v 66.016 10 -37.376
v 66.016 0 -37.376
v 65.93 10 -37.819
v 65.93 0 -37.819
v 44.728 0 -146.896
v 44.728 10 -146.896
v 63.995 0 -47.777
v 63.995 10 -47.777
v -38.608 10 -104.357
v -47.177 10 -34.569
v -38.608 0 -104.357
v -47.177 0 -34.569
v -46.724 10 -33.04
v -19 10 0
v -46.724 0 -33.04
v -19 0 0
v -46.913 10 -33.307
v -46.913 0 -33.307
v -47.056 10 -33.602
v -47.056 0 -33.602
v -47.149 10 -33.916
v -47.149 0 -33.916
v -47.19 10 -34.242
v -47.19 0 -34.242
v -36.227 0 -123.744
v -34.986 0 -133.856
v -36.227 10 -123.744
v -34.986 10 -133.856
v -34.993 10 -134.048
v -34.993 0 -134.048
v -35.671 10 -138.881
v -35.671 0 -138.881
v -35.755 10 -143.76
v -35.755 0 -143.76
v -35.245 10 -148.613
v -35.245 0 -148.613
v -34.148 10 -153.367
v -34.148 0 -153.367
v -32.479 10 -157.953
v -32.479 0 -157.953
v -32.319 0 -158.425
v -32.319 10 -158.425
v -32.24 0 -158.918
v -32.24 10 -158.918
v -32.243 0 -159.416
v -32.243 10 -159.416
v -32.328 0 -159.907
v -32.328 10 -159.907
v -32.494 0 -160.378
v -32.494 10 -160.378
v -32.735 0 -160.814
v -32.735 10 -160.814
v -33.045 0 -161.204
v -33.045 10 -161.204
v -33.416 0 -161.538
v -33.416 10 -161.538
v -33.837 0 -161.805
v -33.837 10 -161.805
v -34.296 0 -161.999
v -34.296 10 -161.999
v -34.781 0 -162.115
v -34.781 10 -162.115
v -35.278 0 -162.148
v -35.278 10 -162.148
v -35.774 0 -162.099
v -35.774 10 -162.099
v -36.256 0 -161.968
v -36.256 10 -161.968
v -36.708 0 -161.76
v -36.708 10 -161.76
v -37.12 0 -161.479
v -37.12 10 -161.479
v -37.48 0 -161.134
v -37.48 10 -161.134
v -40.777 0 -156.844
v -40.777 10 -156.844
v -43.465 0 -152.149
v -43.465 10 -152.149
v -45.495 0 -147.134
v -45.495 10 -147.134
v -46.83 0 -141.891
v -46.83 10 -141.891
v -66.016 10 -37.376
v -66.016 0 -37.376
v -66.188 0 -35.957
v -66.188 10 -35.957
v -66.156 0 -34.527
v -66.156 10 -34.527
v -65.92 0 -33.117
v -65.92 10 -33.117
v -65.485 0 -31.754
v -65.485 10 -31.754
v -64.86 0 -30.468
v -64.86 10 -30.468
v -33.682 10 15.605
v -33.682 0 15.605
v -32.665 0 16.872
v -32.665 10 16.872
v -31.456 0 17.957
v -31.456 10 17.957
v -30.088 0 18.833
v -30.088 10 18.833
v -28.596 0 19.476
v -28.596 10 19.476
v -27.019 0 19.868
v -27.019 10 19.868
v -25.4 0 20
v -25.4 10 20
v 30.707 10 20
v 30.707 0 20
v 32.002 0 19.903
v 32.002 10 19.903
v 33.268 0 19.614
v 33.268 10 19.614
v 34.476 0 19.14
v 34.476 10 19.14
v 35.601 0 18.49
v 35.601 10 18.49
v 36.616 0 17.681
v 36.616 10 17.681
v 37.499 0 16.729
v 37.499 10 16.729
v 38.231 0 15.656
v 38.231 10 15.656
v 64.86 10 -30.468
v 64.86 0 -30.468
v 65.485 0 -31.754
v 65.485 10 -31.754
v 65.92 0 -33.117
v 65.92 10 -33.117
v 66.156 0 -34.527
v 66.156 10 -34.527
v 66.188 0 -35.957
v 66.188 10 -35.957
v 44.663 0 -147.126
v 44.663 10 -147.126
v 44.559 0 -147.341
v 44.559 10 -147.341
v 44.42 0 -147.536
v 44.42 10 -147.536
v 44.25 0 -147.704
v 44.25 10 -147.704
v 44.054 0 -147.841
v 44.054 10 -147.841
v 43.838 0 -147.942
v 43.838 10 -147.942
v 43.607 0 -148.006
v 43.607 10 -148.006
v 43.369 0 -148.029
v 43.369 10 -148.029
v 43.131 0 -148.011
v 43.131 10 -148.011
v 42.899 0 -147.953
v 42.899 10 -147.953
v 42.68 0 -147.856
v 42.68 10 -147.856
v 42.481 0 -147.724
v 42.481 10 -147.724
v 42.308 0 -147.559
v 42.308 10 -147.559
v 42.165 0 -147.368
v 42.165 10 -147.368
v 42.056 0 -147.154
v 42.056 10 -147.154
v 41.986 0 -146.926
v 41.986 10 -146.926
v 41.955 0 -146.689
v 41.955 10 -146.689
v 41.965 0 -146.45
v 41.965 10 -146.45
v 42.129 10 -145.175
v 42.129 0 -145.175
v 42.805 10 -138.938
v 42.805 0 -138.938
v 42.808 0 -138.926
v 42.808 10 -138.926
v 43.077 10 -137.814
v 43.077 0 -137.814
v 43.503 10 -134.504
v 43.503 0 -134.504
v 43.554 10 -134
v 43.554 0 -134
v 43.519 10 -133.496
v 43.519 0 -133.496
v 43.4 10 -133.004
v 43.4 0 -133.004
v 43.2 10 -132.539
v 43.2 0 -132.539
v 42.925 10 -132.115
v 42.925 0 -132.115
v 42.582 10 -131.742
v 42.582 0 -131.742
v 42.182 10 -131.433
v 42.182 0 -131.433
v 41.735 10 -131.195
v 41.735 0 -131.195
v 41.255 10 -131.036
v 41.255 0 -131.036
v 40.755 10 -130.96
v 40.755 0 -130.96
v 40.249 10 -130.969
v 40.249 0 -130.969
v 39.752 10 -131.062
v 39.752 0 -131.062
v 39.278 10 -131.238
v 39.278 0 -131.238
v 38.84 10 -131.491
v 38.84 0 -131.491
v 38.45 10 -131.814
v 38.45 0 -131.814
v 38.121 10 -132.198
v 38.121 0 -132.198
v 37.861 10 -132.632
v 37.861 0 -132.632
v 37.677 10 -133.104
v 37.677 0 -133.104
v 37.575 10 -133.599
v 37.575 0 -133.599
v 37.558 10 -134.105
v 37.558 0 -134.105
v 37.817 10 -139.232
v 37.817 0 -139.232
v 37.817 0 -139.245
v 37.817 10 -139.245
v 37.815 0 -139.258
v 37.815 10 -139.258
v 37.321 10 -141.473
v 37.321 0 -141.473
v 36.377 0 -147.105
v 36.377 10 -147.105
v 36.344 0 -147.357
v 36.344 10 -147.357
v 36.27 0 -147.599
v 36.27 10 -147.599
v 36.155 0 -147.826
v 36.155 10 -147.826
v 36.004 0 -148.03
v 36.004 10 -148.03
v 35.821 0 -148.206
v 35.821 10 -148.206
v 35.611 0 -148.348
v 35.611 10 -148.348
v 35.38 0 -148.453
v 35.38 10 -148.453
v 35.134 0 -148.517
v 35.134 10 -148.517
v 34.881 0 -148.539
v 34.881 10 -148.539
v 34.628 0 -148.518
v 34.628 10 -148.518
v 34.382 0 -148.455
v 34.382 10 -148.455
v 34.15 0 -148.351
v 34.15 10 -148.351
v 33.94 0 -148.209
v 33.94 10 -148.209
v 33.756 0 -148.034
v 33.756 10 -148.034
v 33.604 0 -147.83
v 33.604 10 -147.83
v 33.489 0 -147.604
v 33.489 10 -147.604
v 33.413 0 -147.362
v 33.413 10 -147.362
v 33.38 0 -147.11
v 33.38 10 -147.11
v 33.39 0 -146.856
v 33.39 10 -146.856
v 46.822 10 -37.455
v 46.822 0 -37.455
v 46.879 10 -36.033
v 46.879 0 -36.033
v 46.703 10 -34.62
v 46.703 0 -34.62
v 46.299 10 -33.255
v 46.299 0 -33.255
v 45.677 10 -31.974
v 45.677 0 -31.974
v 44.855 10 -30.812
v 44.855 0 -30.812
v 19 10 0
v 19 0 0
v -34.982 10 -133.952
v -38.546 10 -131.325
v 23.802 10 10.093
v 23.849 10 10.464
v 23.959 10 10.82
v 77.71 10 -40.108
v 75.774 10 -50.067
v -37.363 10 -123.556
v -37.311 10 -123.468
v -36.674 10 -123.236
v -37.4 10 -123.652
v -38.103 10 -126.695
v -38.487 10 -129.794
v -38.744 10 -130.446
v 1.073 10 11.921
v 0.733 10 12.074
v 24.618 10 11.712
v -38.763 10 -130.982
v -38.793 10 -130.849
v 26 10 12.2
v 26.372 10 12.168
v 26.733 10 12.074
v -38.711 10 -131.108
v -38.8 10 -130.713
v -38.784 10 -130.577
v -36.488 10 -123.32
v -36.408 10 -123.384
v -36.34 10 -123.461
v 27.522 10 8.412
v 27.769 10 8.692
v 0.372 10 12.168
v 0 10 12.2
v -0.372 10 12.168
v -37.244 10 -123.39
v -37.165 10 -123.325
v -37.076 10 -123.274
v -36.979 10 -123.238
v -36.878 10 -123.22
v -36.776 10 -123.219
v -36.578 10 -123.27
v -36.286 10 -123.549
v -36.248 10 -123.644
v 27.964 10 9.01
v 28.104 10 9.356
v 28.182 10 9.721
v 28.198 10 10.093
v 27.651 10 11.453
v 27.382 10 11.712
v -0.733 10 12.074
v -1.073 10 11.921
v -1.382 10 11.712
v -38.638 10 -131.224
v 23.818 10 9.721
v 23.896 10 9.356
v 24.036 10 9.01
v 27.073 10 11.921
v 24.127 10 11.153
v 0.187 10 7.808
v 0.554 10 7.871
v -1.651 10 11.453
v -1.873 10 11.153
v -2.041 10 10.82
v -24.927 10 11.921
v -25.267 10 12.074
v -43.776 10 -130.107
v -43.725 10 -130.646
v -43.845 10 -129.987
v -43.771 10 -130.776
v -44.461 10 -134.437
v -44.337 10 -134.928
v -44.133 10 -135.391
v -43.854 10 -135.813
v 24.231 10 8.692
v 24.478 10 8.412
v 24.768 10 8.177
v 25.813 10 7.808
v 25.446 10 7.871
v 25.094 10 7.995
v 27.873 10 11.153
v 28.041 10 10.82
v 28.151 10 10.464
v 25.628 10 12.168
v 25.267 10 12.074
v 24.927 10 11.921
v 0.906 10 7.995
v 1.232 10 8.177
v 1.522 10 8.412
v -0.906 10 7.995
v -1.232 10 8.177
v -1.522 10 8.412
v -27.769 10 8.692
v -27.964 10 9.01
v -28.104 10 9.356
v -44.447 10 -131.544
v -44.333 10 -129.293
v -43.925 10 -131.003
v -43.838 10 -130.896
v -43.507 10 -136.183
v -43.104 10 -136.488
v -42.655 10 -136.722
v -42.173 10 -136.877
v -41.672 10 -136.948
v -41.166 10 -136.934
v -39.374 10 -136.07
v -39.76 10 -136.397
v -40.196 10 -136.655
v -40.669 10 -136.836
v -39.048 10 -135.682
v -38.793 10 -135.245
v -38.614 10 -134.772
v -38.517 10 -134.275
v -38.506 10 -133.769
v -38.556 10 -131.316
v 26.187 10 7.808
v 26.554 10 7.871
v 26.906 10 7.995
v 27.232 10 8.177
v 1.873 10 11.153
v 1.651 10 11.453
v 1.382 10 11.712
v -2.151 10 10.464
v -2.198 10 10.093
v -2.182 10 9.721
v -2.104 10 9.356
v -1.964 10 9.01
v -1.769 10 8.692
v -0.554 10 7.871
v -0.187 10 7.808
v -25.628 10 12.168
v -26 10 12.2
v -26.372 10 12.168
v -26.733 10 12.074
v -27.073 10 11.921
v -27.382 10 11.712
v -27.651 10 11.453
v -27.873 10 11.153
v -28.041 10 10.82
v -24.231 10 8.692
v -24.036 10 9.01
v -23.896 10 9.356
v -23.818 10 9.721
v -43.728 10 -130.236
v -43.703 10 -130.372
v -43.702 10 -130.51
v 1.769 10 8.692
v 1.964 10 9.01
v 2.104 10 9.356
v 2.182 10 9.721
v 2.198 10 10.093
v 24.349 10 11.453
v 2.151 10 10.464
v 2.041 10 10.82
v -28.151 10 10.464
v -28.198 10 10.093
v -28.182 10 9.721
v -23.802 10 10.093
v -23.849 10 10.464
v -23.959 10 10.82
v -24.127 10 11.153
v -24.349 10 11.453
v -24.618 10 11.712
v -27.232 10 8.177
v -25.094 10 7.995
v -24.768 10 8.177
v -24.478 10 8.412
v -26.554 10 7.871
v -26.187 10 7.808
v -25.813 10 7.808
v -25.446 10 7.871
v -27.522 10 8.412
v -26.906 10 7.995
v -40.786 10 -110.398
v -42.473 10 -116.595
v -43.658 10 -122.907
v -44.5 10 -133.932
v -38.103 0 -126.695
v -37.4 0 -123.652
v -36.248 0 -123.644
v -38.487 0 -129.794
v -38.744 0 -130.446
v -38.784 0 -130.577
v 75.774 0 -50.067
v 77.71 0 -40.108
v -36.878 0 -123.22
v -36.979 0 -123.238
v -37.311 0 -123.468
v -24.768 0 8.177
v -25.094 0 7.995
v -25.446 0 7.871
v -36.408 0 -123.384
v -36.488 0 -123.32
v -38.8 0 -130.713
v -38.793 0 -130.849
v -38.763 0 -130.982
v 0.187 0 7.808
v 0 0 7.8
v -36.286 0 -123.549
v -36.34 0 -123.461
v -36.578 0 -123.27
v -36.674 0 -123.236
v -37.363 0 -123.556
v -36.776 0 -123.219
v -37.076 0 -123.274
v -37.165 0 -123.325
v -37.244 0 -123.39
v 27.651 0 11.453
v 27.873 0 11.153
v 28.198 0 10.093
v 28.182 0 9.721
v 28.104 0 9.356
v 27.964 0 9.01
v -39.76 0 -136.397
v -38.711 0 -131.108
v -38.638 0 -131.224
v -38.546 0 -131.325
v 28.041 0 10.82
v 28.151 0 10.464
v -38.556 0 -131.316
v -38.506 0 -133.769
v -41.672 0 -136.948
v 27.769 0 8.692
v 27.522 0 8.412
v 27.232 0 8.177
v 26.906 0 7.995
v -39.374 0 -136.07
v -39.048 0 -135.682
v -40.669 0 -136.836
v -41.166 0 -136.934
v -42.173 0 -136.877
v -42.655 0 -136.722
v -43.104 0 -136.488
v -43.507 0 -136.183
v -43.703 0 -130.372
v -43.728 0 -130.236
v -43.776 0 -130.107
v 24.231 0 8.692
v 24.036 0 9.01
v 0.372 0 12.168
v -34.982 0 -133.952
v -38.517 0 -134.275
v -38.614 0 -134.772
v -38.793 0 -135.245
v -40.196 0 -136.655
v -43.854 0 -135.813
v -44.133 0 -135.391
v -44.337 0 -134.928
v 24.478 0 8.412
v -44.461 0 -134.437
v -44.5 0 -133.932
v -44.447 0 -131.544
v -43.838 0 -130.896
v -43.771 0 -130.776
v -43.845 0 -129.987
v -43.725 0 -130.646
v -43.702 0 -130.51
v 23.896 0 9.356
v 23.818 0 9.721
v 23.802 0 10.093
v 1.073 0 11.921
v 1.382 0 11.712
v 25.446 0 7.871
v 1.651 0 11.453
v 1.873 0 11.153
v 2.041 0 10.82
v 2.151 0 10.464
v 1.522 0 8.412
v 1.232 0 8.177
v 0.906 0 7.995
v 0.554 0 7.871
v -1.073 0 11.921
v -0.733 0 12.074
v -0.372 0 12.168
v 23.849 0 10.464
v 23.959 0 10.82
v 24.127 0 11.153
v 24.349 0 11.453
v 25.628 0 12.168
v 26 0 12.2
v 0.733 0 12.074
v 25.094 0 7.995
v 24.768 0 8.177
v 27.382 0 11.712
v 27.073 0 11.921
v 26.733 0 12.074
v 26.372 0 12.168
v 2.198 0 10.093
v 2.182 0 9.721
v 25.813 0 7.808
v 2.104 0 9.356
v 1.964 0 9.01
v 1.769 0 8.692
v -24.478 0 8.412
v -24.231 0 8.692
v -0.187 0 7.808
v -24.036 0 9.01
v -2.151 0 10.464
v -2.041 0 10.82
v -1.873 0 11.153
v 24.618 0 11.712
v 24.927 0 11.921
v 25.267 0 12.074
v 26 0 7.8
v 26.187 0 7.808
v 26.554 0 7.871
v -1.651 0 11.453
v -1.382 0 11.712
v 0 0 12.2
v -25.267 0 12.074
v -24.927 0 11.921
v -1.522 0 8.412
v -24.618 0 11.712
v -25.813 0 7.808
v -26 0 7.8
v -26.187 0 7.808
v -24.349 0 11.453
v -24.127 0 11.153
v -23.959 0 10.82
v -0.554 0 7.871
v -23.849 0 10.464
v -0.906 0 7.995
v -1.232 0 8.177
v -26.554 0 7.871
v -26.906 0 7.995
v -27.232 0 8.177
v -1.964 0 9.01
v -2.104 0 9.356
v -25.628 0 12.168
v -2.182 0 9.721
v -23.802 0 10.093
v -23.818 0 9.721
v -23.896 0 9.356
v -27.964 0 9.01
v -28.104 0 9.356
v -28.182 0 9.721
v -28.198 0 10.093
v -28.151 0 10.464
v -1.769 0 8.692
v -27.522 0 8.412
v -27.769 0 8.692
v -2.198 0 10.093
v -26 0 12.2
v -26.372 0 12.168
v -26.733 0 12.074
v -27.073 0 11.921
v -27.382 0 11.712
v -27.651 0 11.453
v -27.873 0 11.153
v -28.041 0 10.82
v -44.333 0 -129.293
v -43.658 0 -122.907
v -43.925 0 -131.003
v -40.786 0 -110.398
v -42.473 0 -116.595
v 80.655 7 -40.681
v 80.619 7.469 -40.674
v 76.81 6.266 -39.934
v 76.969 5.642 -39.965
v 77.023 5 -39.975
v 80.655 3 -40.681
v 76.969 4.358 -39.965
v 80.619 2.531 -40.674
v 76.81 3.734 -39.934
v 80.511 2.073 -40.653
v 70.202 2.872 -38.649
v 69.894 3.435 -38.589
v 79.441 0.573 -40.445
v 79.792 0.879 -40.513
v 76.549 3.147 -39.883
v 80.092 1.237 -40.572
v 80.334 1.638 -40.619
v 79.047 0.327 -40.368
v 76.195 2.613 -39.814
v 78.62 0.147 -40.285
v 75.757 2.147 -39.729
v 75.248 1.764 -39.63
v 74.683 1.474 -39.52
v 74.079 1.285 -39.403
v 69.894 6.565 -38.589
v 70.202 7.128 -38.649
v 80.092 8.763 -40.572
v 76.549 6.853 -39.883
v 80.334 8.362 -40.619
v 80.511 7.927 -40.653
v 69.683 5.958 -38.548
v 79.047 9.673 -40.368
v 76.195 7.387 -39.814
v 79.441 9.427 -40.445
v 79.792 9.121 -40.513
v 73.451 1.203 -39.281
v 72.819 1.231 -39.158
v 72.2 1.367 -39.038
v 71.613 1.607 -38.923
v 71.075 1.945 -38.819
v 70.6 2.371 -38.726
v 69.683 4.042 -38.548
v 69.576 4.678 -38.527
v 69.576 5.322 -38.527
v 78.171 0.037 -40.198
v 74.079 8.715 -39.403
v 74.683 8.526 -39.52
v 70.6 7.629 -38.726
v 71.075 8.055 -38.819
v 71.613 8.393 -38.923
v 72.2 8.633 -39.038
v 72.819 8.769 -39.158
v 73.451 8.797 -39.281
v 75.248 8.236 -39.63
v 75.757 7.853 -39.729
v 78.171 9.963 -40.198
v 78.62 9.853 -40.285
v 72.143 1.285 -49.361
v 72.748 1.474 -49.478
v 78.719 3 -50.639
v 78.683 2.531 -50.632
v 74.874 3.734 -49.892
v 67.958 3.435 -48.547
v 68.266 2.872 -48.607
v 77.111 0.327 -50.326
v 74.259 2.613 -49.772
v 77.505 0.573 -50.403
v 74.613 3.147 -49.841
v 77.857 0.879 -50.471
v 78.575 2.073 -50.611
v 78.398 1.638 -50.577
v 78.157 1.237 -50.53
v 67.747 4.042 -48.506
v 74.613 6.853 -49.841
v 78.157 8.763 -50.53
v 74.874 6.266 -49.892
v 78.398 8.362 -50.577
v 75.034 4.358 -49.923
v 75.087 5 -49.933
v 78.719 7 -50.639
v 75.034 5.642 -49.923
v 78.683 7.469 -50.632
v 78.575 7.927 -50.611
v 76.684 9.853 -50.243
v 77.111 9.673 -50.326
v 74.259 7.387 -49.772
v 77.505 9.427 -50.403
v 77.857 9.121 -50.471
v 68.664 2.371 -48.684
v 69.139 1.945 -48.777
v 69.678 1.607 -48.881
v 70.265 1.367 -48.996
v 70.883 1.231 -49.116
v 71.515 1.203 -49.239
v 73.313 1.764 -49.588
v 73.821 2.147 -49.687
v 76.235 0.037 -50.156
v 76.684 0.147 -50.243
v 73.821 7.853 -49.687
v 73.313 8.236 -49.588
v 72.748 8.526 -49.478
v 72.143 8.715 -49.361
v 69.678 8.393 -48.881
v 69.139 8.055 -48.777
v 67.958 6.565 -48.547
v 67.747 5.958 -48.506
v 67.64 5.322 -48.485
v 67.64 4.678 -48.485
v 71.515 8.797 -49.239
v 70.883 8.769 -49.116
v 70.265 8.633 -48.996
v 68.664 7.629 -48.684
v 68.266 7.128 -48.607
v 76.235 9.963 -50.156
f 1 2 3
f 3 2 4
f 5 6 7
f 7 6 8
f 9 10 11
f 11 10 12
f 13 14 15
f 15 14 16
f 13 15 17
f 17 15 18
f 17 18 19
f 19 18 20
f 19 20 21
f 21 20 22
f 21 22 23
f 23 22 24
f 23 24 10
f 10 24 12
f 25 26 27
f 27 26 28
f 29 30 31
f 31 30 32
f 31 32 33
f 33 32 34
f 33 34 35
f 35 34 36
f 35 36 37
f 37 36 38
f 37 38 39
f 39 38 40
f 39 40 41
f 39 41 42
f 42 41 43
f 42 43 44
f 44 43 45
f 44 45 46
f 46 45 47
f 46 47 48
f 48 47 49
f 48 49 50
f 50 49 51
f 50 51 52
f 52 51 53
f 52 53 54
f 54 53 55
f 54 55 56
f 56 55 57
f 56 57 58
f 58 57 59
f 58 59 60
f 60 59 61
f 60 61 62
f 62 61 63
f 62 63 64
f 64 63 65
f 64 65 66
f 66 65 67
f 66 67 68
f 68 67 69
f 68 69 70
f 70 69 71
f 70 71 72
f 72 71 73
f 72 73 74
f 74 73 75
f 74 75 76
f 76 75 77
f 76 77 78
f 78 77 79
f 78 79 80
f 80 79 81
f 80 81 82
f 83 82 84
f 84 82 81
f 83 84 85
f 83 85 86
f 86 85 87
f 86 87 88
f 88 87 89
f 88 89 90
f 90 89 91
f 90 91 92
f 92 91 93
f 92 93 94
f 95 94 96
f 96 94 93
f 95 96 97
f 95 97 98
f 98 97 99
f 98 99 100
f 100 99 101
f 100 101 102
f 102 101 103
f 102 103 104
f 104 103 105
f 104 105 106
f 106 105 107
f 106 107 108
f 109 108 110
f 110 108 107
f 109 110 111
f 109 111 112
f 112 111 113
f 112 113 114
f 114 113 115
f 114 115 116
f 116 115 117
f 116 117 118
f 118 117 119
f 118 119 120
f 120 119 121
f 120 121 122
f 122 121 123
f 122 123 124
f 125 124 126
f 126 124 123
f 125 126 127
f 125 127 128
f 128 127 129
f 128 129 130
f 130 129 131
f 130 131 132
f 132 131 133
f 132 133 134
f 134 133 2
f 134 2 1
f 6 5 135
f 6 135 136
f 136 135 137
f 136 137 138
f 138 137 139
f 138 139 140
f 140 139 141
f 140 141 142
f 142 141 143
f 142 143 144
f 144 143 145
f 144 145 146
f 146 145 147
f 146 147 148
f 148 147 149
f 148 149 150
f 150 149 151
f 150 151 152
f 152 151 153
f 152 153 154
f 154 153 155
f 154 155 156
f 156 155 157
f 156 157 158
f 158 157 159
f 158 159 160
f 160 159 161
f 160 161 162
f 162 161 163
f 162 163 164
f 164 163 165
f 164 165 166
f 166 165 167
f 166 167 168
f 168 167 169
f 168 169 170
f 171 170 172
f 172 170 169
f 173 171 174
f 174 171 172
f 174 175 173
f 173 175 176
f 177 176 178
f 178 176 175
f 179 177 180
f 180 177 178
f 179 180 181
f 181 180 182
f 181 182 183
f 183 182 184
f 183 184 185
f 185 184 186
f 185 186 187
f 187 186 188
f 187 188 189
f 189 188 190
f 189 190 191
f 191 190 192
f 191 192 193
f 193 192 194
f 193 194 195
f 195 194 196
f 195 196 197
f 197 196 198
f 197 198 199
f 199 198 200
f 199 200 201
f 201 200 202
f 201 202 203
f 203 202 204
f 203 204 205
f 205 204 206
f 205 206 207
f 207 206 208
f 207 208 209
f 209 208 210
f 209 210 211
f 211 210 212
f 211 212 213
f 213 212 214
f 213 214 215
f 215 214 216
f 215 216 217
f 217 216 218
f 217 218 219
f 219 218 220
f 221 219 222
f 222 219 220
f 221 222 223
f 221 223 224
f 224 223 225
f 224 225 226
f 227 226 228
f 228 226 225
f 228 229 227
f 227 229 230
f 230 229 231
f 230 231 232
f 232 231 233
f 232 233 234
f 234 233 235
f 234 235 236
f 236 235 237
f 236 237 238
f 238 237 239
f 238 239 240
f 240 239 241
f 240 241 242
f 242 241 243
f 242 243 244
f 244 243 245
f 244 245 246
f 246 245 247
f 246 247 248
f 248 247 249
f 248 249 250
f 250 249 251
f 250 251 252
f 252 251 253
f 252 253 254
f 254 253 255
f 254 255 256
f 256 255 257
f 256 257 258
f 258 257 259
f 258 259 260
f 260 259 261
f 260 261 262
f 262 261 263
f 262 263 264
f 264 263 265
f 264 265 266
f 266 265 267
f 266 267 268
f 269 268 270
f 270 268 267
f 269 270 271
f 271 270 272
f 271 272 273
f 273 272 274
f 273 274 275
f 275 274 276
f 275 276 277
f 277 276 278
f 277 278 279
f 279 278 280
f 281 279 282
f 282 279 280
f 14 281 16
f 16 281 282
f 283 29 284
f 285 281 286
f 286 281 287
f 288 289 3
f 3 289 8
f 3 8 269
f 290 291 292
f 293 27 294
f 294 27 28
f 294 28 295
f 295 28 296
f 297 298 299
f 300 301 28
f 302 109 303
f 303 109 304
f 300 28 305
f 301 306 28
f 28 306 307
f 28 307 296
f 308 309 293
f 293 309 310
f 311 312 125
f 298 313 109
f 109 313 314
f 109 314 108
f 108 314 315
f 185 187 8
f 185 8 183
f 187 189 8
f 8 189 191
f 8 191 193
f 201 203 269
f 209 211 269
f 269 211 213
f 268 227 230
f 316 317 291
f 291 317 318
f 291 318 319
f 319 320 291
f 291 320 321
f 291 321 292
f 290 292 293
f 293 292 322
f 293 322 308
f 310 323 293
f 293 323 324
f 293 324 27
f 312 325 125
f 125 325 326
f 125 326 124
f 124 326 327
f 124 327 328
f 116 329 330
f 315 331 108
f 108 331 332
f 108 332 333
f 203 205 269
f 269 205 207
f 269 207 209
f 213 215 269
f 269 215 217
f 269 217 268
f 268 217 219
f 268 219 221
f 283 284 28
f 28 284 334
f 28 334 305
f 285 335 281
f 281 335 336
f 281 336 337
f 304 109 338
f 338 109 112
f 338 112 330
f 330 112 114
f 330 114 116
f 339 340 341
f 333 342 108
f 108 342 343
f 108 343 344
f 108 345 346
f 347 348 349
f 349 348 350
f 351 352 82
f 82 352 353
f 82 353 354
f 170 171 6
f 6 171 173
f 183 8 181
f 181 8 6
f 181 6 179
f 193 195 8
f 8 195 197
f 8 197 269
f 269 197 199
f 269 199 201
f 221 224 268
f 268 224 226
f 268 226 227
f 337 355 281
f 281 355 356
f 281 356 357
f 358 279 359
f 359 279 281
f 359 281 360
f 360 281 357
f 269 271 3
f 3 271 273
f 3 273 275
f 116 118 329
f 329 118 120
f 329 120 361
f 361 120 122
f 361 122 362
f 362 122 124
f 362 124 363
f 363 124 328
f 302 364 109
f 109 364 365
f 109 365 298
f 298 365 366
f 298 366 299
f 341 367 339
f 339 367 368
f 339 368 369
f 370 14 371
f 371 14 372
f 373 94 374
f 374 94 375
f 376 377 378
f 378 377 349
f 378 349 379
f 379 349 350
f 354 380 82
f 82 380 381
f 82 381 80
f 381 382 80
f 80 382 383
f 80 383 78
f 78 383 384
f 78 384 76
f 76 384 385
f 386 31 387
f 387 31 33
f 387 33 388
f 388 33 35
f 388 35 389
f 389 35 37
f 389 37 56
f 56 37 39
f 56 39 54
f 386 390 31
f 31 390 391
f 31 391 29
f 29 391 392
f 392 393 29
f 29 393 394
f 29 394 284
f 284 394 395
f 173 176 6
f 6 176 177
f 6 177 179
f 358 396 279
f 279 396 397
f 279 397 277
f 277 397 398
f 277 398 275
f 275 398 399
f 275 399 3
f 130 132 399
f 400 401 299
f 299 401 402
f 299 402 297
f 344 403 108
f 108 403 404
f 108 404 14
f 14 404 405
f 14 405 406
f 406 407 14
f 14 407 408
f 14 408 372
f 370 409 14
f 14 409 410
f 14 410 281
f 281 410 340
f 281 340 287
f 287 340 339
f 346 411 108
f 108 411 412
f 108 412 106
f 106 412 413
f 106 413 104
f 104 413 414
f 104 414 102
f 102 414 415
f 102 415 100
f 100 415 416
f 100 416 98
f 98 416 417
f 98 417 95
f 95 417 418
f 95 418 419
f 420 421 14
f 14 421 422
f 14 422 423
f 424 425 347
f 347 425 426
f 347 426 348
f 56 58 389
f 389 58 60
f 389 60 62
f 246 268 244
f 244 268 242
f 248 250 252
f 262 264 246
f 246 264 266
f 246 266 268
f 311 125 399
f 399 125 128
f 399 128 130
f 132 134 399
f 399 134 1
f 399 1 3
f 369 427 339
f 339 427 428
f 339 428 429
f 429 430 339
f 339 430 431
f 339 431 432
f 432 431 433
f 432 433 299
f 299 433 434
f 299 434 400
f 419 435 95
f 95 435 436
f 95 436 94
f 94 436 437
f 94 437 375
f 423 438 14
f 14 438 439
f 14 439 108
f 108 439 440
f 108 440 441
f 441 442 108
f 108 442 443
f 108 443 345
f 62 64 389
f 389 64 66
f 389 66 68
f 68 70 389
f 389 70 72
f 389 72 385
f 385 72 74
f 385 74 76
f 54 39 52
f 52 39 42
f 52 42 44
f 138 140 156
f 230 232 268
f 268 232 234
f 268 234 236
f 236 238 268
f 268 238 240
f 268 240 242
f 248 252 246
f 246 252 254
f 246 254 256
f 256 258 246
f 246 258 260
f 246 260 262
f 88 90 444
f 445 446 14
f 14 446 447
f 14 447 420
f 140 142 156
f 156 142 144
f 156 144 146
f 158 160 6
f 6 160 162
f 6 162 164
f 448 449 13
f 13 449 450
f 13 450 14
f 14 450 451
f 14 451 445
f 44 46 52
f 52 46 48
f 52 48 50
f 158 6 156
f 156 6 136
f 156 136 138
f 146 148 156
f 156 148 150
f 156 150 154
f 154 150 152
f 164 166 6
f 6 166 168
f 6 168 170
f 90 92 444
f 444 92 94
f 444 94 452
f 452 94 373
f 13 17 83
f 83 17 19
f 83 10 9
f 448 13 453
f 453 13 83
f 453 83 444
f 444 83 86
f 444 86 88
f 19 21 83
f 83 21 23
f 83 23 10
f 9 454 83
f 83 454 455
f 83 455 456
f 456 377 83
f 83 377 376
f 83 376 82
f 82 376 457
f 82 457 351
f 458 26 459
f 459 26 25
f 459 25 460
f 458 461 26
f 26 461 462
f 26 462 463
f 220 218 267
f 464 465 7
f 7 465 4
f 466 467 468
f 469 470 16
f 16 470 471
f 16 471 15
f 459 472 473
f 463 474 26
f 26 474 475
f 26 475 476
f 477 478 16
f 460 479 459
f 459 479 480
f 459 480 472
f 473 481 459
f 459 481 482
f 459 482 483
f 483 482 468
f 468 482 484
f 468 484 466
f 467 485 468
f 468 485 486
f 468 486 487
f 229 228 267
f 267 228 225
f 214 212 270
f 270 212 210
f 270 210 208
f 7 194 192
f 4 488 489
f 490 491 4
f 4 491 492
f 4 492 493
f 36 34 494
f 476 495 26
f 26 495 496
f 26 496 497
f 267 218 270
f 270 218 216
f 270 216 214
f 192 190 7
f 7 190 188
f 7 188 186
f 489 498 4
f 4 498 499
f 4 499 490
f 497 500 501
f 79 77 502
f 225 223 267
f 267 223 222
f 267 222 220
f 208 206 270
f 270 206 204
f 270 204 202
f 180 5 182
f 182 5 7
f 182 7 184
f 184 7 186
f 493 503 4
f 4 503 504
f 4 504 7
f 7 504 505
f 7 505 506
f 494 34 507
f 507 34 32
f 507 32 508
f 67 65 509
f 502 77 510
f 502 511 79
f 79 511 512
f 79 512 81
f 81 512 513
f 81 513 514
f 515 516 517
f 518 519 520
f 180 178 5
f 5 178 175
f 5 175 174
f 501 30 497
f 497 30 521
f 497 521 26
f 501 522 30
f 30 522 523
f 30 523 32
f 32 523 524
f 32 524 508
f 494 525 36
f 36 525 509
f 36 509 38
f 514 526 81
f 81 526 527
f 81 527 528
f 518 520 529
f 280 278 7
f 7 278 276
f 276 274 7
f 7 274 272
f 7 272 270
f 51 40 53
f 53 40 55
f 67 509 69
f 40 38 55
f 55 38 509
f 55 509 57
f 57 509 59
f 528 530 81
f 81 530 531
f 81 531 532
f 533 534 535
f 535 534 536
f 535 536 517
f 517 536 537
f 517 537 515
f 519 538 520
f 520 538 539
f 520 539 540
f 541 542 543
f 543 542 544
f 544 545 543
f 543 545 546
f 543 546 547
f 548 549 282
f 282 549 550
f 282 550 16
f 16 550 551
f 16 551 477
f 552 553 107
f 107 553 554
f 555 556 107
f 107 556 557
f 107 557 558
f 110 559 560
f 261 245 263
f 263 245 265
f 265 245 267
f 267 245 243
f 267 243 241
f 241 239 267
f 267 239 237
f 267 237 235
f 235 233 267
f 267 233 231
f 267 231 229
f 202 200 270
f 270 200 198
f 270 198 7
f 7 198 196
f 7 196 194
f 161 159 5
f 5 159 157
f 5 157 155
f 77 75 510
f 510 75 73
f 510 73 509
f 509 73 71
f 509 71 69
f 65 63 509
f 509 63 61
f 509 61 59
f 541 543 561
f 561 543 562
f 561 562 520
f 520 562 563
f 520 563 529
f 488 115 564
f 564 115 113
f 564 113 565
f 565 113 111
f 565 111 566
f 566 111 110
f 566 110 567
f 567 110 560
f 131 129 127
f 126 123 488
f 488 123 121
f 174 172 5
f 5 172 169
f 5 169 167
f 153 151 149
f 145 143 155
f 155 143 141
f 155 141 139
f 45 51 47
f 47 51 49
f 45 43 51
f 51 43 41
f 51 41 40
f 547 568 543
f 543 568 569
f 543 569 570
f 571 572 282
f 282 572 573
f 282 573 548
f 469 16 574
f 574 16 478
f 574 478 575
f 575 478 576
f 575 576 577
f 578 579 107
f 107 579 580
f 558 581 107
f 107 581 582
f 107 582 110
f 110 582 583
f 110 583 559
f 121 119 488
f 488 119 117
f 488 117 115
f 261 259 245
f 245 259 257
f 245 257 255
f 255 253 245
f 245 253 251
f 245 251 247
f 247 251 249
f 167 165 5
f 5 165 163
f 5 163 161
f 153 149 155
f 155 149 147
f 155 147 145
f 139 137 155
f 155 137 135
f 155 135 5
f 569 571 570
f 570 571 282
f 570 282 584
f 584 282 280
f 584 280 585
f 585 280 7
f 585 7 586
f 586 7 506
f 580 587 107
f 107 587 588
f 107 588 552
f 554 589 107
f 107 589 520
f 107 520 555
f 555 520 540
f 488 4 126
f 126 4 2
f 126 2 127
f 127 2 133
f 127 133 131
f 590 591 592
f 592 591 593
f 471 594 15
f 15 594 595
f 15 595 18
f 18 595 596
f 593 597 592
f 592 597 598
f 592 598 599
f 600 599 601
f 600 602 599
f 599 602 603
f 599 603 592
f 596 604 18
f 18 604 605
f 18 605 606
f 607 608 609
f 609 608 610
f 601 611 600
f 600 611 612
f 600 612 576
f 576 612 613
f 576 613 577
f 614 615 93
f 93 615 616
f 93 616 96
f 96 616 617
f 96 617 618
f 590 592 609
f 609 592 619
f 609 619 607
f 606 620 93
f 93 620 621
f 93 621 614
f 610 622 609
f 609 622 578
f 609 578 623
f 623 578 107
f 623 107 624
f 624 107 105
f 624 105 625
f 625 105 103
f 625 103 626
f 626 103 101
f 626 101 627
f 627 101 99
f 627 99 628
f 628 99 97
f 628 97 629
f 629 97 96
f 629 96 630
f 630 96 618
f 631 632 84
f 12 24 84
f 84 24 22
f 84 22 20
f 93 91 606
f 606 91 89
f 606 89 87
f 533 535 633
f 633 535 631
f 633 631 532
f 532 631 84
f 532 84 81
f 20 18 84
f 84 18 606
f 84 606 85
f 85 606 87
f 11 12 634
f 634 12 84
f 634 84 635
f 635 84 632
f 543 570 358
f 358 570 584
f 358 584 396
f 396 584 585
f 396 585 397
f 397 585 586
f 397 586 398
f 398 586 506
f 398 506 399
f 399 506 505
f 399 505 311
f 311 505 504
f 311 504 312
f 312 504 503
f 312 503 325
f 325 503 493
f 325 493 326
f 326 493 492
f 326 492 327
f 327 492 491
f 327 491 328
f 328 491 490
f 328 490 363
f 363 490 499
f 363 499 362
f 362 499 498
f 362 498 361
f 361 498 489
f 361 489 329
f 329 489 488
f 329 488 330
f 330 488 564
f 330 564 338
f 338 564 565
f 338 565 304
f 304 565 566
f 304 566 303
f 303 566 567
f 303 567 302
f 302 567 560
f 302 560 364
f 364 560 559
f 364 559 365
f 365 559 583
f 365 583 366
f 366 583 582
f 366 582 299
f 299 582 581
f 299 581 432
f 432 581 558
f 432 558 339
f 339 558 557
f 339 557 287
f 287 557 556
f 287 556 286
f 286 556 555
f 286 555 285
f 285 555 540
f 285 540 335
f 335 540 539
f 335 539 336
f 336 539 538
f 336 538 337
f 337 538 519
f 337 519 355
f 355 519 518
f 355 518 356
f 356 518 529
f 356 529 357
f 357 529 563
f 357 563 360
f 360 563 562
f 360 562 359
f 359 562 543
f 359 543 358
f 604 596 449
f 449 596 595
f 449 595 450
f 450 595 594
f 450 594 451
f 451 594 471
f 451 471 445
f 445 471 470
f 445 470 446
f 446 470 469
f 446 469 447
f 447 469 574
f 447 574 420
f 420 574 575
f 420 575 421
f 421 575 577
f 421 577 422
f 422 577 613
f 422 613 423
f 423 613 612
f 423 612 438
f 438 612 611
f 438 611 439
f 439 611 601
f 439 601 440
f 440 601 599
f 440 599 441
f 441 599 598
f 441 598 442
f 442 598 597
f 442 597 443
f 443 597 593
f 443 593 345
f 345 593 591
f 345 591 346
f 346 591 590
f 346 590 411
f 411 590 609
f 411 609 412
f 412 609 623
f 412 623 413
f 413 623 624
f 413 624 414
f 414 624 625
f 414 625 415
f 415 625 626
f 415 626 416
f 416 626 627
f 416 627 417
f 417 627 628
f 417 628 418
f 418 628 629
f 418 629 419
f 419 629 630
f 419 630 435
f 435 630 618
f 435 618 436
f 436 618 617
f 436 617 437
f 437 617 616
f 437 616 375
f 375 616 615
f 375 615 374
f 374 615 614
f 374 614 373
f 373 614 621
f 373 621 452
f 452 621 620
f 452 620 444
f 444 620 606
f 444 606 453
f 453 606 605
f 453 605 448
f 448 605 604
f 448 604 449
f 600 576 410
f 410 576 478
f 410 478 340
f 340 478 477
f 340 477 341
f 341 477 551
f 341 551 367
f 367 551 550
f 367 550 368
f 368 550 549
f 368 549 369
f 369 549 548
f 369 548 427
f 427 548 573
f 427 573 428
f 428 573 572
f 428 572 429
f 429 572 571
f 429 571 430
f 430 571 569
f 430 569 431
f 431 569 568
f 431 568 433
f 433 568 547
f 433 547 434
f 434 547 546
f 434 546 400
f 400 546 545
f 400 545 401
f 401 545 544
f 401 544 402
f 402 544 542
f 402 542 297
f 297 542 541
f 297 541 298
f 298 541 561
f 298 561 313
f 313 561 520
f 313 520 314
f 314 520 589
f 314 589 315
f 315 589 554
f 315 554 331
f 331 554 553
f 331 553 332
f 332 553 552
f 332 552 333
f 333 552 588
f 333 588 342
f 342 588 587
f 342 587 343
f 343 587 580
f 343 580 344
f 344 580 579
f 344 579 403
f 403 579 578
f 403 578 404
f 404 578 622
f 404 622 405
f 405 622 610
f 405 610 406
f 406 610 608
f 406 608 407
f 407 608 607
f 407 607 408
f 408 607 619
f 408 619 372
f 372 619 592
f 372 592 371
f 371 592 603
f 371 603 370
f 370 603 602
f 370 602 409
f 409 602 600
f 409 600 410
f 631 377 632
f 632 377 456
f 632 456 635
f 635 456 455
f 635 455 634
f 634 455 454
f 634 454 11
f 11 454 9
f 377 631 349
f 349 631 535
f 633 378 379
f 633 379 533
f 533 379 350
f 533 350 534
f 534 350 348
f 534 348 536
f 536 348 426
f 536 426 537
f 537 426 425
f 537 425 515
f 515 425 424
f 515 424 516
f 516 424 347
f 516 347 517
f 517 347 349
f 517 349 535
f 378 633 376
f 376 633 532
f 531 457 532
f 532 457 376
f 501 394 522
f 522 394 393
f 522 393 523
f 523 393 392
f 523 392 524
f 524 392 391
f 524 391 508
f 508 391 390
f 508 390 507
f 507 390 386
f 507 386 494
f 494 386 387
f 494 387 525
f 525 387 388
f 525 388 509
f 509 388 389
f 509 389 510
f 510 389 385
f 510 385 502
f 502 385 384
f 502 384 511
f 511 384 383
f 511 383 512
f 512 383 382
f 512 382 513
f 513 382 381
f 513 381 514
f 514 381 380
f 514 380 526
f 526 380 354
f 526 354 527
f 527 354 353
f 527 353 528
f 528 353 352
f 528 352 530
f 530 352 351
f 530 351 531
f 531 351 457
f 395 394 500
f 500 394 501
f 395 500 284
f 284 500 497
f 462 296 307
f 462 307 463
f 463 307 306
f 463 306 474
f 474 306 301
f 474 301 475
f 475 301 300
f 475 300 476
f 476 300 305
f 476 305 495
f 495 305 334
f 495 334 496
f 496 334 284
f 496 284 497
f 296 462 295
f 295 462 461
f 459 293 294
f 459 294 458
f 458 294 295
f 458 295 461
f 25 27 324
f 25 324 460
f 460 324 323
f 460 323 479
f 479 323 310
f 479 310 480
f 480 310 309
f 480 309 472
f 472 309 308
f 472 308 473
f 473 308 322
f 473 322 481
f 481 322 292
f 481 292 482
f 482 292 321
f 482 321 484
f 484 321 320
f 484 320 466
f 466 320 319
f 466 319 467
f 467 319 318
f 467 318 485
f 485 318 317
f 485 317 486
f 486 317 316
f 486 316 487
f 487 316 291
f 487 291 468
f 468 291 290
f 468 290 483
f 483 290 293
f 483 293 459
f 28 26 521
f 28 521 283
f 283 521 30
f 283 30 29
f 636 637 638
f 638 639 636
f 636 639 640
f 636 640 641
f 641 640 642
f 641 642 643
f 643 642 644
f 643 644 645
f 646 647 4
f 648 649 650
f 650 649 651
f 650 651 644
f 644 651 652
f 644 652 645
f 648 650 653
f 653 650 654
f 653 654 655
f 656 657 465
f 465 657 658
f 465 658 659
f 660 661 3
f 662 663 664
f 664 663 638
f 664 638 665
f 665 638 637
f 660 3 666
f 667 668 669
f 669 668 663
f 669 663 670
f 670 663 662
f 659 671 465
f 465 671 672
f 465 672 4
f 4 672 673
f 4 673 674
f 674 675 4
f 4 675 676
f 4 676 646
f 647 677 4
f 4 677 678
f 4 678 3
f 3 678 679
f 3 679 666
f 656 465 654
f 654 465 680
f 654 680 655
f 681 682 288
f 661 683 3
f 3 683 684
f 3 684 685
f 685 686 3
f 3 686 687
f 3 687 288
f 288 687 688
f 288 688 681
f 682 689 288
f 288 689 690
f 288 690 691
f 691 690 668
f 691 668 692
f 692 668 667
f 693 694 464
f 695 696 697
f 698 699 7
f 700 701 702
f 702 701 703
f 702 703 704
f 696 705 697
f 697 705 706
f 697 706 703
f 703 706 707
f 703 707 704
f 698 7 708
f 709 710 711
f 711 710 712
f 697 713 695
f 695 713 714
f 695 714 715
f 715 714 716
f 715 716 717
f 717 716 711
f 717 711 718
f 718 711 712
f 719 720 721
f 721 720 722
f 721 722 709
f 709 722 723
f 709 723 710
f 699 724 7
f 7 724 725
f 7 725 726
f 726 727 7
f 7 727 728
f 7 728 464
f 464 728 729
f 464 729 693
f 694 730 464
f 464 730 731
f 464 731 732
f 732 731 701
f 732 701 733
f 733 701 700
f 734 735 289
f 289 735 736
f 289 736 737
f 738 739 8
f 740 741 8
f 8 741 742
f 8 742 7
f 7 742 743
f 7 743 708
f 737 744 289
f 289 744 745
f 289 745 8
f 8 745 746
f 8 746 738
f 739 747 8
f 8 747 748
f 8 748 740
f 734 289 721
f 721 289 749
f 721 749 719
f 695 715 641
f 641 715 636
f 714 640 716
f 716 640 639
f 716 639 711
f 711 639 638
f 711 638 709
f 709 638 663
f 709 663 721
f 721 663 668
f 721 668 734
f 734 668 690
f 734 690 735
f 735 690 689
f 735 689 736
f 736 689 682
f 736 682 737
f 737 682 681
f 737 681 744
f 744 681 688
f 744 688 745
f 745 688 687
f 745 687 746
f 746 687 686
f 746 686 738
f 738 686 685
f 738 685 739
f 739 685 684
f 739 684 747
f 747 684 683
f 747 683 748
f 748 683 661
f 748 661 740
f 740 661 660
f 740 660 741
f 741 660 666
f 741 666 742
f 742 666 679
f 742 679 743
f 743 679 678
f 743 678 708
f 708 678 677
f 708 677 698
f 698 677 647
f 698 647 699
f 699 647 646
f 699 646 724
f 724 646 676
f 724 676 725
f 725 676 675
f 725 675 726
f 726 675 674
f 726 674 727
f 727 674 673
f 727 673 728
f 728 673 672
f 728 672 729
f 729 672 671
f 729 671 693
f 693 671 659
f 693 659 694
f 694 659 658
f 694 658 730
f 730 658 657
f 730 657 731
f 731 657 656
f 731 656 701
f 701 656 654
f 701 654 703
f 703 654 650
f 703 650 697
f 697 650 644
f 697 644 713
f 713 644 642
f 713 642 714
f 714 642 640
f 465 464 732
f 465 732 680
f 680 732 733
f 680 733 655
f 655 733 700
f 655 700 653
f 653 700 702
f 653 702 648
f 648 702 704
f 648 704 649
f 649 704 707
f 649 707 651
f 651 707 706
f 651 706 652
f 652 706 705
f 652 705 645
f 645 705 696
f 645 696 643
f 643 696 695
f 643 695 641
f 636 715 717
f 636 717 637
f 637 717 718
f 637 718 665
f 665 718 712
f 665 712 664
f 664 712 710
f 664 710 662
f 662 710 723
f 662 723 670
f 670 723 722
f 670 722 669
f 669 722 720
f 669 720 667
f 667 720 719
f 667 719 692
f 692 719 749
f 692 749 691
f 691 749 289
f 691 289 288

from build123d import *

# Parameters (mm, degrees)
EXTRUDE_1_DEPTH     = 10
CUT_EXTRUDE_1_REACH = 177.427
SKETCH_2_R          = 2.2
FILLET_1_R          = 0.6
SKETCH_3_W          = 10.144437824
SKETCH_3_H          = 10
EXTRUDE_2_DEPTH     = 15
CUT_EXTRUDE_2_REACH = 164.61
SKETCH_4_R          = 3.8
FILLET_2_R          = 3


with BuildPart() as part:
    # 草图1 → 凸台-拉伸1 (new body)
    with BuildSketch(Plane(origin=(0, 0, 0), x_dir=(1, 0, 0), z_dir=(0, 1, 0))):
        with BuildLine():
            Line((-19, 0), (19, 0))
            Line((19, 0), (44.854614973, 30.81233028))
            ThreePointArc((44.854614973, 30.81233028), (46.529317931, 33.929104052), (46.82231051, 37.455159084))
            Line((46.82231051, 37.455159084), (33.389549678, 146.856216784))
            ThreePointArc((33.389549678, 146.856216784), (34.753999407, 148.533855984), (36.376927445, 147.104765038))
            ThreePointArc((36.376927445, 147.104765038), (36.892496808, 144.296291333), (37.320815542, 141.473193853))
            Line((37.320815542, 141.473193853), (37.815132232, 139.258398169))
            ThreePointArc((37.815132232, 139.258398169), (37.817176658, 139.245056143), (37.817405692, 139.231560332))
            Line((37.817405692, 139.231560332), (37.557917484, 134.104765038))
            ThreePointArc((37.557917484, 134.104765038), (40.754926912, 130.959847465), (43.503129215, 134.503681536))
            Line((43.503129215, 134.503681536), (43.077003941, 137.813685213))
            Line((43.077003941, 137.813685213), (42.807637334, 138.925557366))
            ThreePointArc((42.807637334, 138.925557366), (42.806315787, 138.931905108), (42.80540838, 138.938325149))
            Line((42.80540838, 138.938325149), (42.129277547, 145.175318139))
            Line((42.129277547, 145.175318139), (41.965181023, 146.44996701))
            ThreePointArc((41.965181023, 146.44996701), (43.130662006, 148.010841711), (44.727999785, 146.895858405))
            Line((44.727999785, 146.895858405), (66.016482503, 37.376109146))
            ThreePointArc((66.016482503, 37.376109146), (66.063066684, 33.817543133), (64.860464706, 30.468019192))
            Line((64.860464706, 30.468019192), (38.23055697, -15.656334008))
            ThreePointArc((38.23055697, -15.656334008), (35.050772773, -18.836118205), (30.707106781, -20))
            Line((30.707106781, -20), (5.707106781, -20))
            Line((5.707106781, -20), (-5.707106781, -20))
            Line((-5.707106781, -20), (-25.399802658, -20))
            ThreePointArc((-25.399802658, -20), (-30.087775174, -18.833058003), (-33.681629288, -15.604582738))
            Line((-33.681629288, -15.604582738), (-64.860464706, 30.468019192))
            ThreePointArc((-64.860464706, 30.468019192), (-66.063066684, 33.817543133), (-66.016482503, 37.376109146))
            Line((-66.016482503, 37.376109146), (-46.829620455, 141.890886738))
            ThreePointArc((-46.829620455, 141.890886738), (-43.465252598, 152.148967586), (-37.480163066, 161.13372674))
            ThreePointArc((-37.480163066, 161.13372674), (-33.620696298, 161.680216975), (-32.479267504, 157.953116813))
            ThreePointArc((-32.479267504, 157.953116813), (-35.579400499, 146.14570295), (-34.973851142, 133.953116813))
            Line((-34.973851142, 133.953116813), (-47.176674229, 34.569098196))
            ThreePointArc((-47.176674229, 34.569098196), (-47.109221395, 33.75732882), (-46.723670812, 33.03978429))
            Line((-46.723670812, 33.03978429), (-19, 0))
        make_face()
    extrude(amount=EXTRUDE_1_DEPTH)

    # 草图2 → 切除-拉伸1 (cut, up to next)
    with BuildSketch(Plane(origin=(0, 10, 0), x_dir=(1, 0, 0), z_dir=(0, 1, 0)), mode=Mode.PRIVATE) as cut_extrude_1_sk1:
        with Locations(Location((0, -10, 0), (0, 0, 270))):
            Circle(SKETCH_2_R)
    cut_extrude_1_tool1 = extrude(cut_extrude_1_sk1.sketch, amount=-CUT_EXTRUDE_1_REACH, mode=Mode.PRIVATE) & part.part
    # 草图2 → 切除-拉伸1 (cut, up to next)
    with BuildSketch(Plane(origin=(0, 10, 0), x_dir=(1, 0, 0), z_dir=(0, 1, 0)), mode=Mode.PRIVATE) as cut_extrude_1_sk2:
        with Locations(Location((-26, -10, 0), (0, 0, 270))):
            Circle(SKETCH_2_R)
    cut_extrude_1_tool2 = extrude(cut_extrude_1_sk2.sketch, amount=-CUT_EXTRUDE_1_REACH, mode=Mode.PRIVATE) & part.part
    # 草图2 → 切除-拉伸1 (cut, up to next)
    with BuildSketch(Plane(origin=(0, 10, 0), x_dir=(1, 0, 0), z_dir=(0, 1, 0)), mode=Mode.PRIVATE) as cut_extrude_1_sk3:
        with Locations(Location((26, -10, 0), (0, 0, 270))):
            Circle(SKETCH_2_R)
    cut_extrude_1_tool3 = extrude(cut_extrude_1_sk3.sketch, amount=-CUT_EXTRUDE_1_REACH, mode=Mode.PRIVATE) & part.part
    # 草图2 → 切除-拉伸1 (cut, up to next)
    with BuildSketch(Plane(origin=(0, 10, 0), x_dir=(1, 0, 0), z_dir=(0, 1, 0)), mode=Mode.PRIVATE) as cut_extrude_1_sk4:
        with BuildLine():
            Line((-36.549558395, 121.120011078), (-38.607748185, 104.35740041))
            ThreePointArc((-38.607748185, 104.35740041), (-42.47341142, 116.594845153), (-44.332546284, 129.292956179))
            Line((-44.332546284, 129.292956179), (-43.845113062, 129.987442667))
            ThreePointArc((-43.845113062, 129.987442667), (-43.702378092, 130.509625408), (-43.924830211, 131.003146575))
            Line((-43.924830211, 131.003146575), (-44.447419993, 131.543571067))
            ThreePointArc((-44.447419993, 131.543571067), (-44.482588605, 132.737575539), (-44.499925482, 133.931972015))
            ThreePointArc((-44.499925482, 133.931972015), (-41.418283025, 136.952003662), (-38.505677682, 133.768634142))
            ThreePointArc((-38.505677682, 133.768634142), (-38.556072369, 132.542586282), (-38.556286633, 131.315503182))
            Line((-38.556286633, 131.315503182), (-38.546052546, 131.325051295))
            ThreePointArc((-38.546052546, 131.325051295), (-38.780683801, 130.91622187), (-38.744387532, 130.446247504))
            Line((-38.744387532, 130.446247504), (-38.486748585, 129.793872308))
            ThreePointArc((-38.486748585, 129.793872308), (-37.841140795, 125.384806825), (-36.549558395, 121.120011078))
        make_face()
    cut_extrude_1_tool4 = extrude(cut_extrude_1_sk4.sketch, amount=-CUT_EXTRUDE_1_REACH, mode=Mode.PRIVATE) & part.part
    add(cut_extrude_1_tool1.solids().sort_by_distance((0, 10, 10))[0], mode=Mode.SUBTRACT)
    add(cut_extrude_1_tool2.solids().sort_by_distance((-26, 10, 10))[0], mode=Mode.SUBTRACT)
    add(cut_extrude_1_tool3.solids().sort_by_distance((26, 10, 10))[0], mode=Mode.SUBTRACT)
    add(cut_extrude_1_tool4.solids().sort_by_distance((-40.502089, 10, -123.156617))[0], mode=Mode.SUBTRACT)

    # 圆角1
    fillet_1_edges = [part.edges().sort_by_distance(p)[0] for p in [
        (-36.549558395, 5, -121.120011078),
        (-34.973851142, 5, -133.953116813),
    ]]
    fillet(fillet_1_edges, radius=FILLET_1_R)

    # 草图3 → 凸台-拉伸2 (add)
    with BuildSketch(Plane(origin=(70.613618069, 0, -13.725896909), x_dir=(-0.19080899537654988, 0, -0.9816271834476631), z_dir=(0.9816271834476631, 0, -0.19080899537654988))):
        with Locations((29.616052291, 5)):
            Rectangle(SKETCH_3_W, SKETCH_3_H)
    extrude(amount=EXTRUDE_2_DEPTH)

    # 草图4 → 切除-拉伸2 (cut, up to next)
    with BuildSketch(Plane(origin=(-4.68318419, 0, -24.092894031), x_dir=(0.981627183447663, 0, -0.19080899537654997), z_dir=(0.19080899537654997, 0, 0.981627183447663)), mode=Mode.PRIVATE) as cut_extrude_2_sk1:
        with Locations((79.435271618, 5)):
            Circle(SKETCH_4_R)
    cut_extrude_2_tool1 = extrude(cut_extrude_2_sk1.sketch, amount=-CUT_EXTRUDE_2_REACH, mode=Mode.PRIVATE) & part.part
    add(cut_extrude_2_tool1.solids().sort_by_distance((73.292638, 5, -39.249858))[0], mode=Mode.SUBTRACT)

    # 圆角2
    fillet_2_edges = [part.edges().sort_by_distance(p)[0] for p in [
        (79.687016636, 0, -45.659953836),
        (79.687016636, 10, -45.659953836),
    ]]
    fillet(fillet_2_edges, radius=FILLET_2_R)


solid = part.part
